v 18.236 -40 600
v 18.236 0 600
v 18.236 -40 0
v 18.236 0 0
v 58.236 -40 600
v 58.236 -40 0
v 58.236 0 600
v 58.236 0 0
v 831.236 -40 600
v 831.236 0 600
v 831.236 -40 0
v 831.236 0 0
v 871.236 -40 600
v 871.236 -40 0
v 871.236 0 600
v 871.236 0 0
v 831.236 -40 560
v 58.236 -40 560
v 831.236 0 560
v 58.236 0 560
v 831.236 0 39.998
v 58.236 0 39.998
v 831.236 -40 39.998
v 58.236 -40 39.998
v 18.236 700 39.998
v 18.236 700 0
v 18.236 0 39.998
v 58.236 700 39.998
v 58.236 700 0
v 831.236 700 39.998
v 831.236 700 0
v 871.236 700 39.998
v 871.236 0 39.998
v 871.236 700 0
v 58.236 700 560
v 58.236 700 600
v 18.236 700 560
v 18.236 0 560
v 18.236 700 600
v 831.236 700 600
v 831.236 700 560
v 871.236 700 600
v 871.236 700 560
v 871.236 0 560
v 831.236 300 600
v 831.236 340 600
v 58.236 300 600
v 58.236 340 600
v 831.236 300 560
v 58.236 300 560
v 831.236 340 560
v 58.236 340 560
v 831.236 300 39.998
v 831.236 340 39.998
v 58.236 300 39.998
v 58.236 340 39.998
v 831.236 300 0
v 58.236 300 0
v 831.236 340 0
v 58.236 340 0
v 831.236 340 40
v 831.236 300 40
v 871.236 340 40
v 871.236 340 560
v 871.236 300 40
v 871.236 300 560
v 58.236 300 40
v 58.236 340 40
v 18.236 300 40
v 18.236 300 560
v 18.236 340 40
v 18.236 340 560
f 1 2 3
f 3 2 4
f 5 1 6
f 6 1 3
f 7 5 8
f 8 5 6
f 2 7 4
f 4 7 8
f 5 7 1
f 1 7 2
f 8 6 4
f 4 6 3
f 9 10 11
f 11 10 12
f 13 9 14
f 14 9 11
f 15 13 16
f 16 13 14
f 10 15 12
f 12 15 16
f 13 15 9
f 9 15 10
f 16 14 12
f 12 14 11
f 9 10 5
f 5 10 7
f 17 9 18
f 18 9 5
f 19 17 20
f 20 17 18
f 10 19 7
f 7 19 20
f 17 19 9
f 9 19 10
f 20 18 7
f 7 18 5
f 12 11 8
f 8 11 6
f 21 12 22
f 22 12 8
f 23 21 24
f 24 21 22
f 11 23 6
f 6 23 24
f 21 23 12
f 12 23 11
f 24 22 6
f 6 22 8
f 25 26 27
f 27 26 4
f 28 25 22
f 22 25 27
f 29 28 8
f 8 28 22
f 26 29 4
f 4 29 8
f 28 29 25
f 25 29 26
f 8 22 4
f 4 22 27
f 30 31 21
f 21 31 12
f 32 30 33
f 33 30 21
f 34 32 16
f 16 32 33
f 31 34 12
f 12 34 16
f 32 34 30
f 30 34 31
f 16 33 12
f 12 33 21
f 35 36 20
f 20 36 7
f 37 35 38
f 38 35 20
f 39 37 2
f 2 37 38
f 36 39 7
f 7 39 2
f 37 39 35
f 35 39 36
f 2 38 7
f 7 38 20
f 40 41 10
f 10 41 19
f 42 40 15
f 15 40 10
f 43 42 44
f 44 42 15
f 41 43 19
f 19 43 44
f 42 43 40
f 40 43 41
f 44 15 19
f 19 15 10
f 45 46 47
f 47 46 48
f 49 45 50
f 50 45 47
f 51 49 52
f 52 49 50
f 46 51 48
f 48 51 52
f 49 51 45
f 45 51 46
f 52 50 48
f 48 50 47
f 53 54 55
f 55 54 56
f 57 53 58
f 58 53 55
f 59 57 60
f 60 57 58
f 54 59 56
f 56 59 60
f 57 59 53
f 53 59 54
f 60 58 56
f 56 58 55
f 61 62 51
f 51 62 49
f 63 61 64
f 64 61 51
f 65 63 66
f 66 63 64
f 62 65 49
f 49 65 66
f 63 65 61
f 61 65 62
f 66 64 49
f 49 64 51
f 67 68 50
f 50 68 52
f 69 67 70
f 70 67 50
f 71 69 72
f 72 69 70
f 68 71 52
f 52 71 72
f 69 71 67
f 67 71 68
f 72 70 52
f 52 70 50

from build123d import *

# Parameters (mm, degrees)
SKETCH_5_W         = 40
SKETCH_5_H         = 40
EXTRUDE_3_DEPTH    = 600
EXTRUDE_3_2_DEPTH  = 600
SKETCH_6_W         = 40
SKETCH_6_H         = 40
EXTRUDE_5_DEPTH    = 773
SKETCH_6_W_2       = 39.998363096
EXTRUDE_5_2_DEPTH  = 773
SKETCH_7_W         = 40
SKETCH_7_H         = 39.998363096
EXTRUDE_6_DEPTH    = 700
EXTRUDE_6_2_DEPTH  = 700
SKETCH_7_H_2       = 40
EXTRUDE_6_3_DEPTH  = 700
EXTRUDE_6_4_DEPTH  = 700
SKETCH_10_W        = 40
SKETCH_10_H        = 40
EXTRUDE_9_DEPTH    = 773
SKETCH_10_W_2      = 39.998363096
EXTRUDE_9_2_DEPTH  = 773
SKETCH_11_W        = 40
SKETCH_11_H        = 40
EXTRUDE_10_DEPTH   = 520
EXTRUDE_10_2_DEPTH = 520


with BuildPart() as part:
    # ｽｹｯﾁ5 → ﾎﾞｽ - 押し出し3 (new body)
    with BuildSketch(Plane.XY):
        with Locations((38.235651977, -20)):
            Rectangle(SKETCH_5_W, SKETCH_5_H)
    extrude(amount=EXTRUDE_3_DEPTH)


with BuildPart() as body_2:
    # ｽｹｯﾁ5 → Extrude 3 2 (new body)
    with BuildSketch(Plane.XY):
        with Locations((851.235651977, -20)):
            Rectangle(SKETCH_5_W, SKETCH_5_H)
    extrude(amount=EXTRUDE_3_2_DEPTH)


with BuildPart() as body_3:
    # ｽｹｯﾁ6 → ﾎﾞｽ - 押し出し5 (new body)
    with BuildSketch(Plane(origin=(58.235651977, 0, 0), x_dir=(0, 0, -1), z_dir=(1, 0, 0))):
        with Locations((-580, -20)):
            Rectangle(SKETCH_6_W, SKETCH_6_H)
    extrude(amount=EXTRUDE_5_DEPTH)


with BuildPart() as body_4:
    # ｽｹｯﾁ6 → Extrude 5 2 (new body)
    with BuildSketch(Plane(origin=(58.235651977, 0, 0), x_dir=(0, 0, -1), z_dir=(1, 0, 0))):
        with Locations((-19.999181548, -20)):
            Rectangle(SKETCH_6_W_2, SKETCH_6_H)
    extrude(amount=EXTRUDE_5_2_DEPTH)


with BuildPart() as body_5:
    # ｽｹｯﾁ7 → ﾎﾞｽ - 押し出し6 (new body)
    with BuildSketch(Plane(origin=(0, 0, 0), x_dir=(1, 0, 0), z_dir=(0, 1, 0))):
        with Locations((38.235651977, -19.999181548)):
            Rectangle(SKETCH_7_W, SKETCH_7_H)
    extrude(amount=EXTRUDE_6_DEPTH)


with BuildPart() as body_6:
    # ｽｹｯﾁ7 → Extrude 6 2 (new body)
    with BuildSketch(Plane(origin=(0, 0, 0), x_dir=(1, 0, 0), z_dir=(0, 1, 0))):
        with Locations((851.235651977, -19.999181548)):
            Rectangle(SKETCH_7_W, SKETCH_7_H)
    extrude(amount=EXTRUDE_6_2_DEPTH)


with BuildPart() as body_7:
    # ｽｹｯﾁ7 → Extrude 6 3 (new body)
    with BuildSketch(Plane(origin=(0, 0, 0), x_dir=(1, 0, 0), z_dir=(0, 1, 0))):
        with Locations((38.235651977, -580)):
            Rectangle(SKETCH_7_W, SKETCH_7_H_2)
    extrude(amount=EXTRUDE_6_3_DEPTH)


with BuildPart() as body_8:
    # ｽｹｯﾁ7 → Extrude 6 4 (new body)
    with BuildSketch(Plane(origin=(0, 0, 0), x_dir=(1, 0, 0), z_dir=(0, 1, 0))):
        with Locations((851.235651977, -580)):
            Rectangle(SKETCH_7_W, SKETCH_7_H_2)
    extrude(amount=EXTRUDE_6_4_DEPTH)


with BuildPart() as body_9:
    # ｽｹｯﾁ10 → ﾎﾞｽ - 押し出し9 (new body)
    with BuildSketch(Plane(origin=(58.235651977, 0, 0), x_dir=(0, 0, -1), z_dir=(1, 0, 0))):
        with Locations((-580, 320)):
            Rectangle(SKETCH_10_W, SKETCH_10_H)
    extrude(amount=EXTRUDE_9_DEPTH)


with BuildPart() as body_10:
    # ｽｹｯﾁ10 → Extrude 9 2 (new body)
    with BuildSketch(Plane(origin=(58.235651977, 0, 0), x_dir=(0, 0, -1), z_dir=(1, 0, 0))):
        with Locations((-19.999181548, 320)):
            Rectangle(SKETCH_10_W_2, SKETCH_10_H)
    extrude(amount=EXTRUDE_9_2_DEPTH)


with BuildPart() as body_11:
    # ｽｹｯﾁ11 → ﾎﾞｽ - 押し出し10 (new body)
    with BuildSketch(Plane(origin=(0, 0, 560), x_dir=(-1, 0, 0), z_dir=(0, 0, -1))):
        with Locations((-851.235651977, 320)):
            Rectangle(SKETCH_11_W, SKETCH_11_H)
    extrude(amount=EXTRUDE_10_DEPTH)


with BuildPart() as body_12:
    # ｽｹｯﾁ11 → Extrude 10 2 (new body)
    with BuildSketch(Plane(origin=(0, 0, 560), x_dir=(-1, 0, 0), z_dir=(0, 0, -1))):
        with Locations((-38.235651977, 320)):
            Rectangle(SKETCH_11_W, SKETCH_11_H)
    extrude(amount=EXTRUDE_10_2_DEPTH)


solid = Compound([part.part, body_2.part, body_3.part, body_4.part, body_5.part, body_6.part, body_7.part, body_8.part, body_9.part, body_10.part, body_11.part, body_12.part])
